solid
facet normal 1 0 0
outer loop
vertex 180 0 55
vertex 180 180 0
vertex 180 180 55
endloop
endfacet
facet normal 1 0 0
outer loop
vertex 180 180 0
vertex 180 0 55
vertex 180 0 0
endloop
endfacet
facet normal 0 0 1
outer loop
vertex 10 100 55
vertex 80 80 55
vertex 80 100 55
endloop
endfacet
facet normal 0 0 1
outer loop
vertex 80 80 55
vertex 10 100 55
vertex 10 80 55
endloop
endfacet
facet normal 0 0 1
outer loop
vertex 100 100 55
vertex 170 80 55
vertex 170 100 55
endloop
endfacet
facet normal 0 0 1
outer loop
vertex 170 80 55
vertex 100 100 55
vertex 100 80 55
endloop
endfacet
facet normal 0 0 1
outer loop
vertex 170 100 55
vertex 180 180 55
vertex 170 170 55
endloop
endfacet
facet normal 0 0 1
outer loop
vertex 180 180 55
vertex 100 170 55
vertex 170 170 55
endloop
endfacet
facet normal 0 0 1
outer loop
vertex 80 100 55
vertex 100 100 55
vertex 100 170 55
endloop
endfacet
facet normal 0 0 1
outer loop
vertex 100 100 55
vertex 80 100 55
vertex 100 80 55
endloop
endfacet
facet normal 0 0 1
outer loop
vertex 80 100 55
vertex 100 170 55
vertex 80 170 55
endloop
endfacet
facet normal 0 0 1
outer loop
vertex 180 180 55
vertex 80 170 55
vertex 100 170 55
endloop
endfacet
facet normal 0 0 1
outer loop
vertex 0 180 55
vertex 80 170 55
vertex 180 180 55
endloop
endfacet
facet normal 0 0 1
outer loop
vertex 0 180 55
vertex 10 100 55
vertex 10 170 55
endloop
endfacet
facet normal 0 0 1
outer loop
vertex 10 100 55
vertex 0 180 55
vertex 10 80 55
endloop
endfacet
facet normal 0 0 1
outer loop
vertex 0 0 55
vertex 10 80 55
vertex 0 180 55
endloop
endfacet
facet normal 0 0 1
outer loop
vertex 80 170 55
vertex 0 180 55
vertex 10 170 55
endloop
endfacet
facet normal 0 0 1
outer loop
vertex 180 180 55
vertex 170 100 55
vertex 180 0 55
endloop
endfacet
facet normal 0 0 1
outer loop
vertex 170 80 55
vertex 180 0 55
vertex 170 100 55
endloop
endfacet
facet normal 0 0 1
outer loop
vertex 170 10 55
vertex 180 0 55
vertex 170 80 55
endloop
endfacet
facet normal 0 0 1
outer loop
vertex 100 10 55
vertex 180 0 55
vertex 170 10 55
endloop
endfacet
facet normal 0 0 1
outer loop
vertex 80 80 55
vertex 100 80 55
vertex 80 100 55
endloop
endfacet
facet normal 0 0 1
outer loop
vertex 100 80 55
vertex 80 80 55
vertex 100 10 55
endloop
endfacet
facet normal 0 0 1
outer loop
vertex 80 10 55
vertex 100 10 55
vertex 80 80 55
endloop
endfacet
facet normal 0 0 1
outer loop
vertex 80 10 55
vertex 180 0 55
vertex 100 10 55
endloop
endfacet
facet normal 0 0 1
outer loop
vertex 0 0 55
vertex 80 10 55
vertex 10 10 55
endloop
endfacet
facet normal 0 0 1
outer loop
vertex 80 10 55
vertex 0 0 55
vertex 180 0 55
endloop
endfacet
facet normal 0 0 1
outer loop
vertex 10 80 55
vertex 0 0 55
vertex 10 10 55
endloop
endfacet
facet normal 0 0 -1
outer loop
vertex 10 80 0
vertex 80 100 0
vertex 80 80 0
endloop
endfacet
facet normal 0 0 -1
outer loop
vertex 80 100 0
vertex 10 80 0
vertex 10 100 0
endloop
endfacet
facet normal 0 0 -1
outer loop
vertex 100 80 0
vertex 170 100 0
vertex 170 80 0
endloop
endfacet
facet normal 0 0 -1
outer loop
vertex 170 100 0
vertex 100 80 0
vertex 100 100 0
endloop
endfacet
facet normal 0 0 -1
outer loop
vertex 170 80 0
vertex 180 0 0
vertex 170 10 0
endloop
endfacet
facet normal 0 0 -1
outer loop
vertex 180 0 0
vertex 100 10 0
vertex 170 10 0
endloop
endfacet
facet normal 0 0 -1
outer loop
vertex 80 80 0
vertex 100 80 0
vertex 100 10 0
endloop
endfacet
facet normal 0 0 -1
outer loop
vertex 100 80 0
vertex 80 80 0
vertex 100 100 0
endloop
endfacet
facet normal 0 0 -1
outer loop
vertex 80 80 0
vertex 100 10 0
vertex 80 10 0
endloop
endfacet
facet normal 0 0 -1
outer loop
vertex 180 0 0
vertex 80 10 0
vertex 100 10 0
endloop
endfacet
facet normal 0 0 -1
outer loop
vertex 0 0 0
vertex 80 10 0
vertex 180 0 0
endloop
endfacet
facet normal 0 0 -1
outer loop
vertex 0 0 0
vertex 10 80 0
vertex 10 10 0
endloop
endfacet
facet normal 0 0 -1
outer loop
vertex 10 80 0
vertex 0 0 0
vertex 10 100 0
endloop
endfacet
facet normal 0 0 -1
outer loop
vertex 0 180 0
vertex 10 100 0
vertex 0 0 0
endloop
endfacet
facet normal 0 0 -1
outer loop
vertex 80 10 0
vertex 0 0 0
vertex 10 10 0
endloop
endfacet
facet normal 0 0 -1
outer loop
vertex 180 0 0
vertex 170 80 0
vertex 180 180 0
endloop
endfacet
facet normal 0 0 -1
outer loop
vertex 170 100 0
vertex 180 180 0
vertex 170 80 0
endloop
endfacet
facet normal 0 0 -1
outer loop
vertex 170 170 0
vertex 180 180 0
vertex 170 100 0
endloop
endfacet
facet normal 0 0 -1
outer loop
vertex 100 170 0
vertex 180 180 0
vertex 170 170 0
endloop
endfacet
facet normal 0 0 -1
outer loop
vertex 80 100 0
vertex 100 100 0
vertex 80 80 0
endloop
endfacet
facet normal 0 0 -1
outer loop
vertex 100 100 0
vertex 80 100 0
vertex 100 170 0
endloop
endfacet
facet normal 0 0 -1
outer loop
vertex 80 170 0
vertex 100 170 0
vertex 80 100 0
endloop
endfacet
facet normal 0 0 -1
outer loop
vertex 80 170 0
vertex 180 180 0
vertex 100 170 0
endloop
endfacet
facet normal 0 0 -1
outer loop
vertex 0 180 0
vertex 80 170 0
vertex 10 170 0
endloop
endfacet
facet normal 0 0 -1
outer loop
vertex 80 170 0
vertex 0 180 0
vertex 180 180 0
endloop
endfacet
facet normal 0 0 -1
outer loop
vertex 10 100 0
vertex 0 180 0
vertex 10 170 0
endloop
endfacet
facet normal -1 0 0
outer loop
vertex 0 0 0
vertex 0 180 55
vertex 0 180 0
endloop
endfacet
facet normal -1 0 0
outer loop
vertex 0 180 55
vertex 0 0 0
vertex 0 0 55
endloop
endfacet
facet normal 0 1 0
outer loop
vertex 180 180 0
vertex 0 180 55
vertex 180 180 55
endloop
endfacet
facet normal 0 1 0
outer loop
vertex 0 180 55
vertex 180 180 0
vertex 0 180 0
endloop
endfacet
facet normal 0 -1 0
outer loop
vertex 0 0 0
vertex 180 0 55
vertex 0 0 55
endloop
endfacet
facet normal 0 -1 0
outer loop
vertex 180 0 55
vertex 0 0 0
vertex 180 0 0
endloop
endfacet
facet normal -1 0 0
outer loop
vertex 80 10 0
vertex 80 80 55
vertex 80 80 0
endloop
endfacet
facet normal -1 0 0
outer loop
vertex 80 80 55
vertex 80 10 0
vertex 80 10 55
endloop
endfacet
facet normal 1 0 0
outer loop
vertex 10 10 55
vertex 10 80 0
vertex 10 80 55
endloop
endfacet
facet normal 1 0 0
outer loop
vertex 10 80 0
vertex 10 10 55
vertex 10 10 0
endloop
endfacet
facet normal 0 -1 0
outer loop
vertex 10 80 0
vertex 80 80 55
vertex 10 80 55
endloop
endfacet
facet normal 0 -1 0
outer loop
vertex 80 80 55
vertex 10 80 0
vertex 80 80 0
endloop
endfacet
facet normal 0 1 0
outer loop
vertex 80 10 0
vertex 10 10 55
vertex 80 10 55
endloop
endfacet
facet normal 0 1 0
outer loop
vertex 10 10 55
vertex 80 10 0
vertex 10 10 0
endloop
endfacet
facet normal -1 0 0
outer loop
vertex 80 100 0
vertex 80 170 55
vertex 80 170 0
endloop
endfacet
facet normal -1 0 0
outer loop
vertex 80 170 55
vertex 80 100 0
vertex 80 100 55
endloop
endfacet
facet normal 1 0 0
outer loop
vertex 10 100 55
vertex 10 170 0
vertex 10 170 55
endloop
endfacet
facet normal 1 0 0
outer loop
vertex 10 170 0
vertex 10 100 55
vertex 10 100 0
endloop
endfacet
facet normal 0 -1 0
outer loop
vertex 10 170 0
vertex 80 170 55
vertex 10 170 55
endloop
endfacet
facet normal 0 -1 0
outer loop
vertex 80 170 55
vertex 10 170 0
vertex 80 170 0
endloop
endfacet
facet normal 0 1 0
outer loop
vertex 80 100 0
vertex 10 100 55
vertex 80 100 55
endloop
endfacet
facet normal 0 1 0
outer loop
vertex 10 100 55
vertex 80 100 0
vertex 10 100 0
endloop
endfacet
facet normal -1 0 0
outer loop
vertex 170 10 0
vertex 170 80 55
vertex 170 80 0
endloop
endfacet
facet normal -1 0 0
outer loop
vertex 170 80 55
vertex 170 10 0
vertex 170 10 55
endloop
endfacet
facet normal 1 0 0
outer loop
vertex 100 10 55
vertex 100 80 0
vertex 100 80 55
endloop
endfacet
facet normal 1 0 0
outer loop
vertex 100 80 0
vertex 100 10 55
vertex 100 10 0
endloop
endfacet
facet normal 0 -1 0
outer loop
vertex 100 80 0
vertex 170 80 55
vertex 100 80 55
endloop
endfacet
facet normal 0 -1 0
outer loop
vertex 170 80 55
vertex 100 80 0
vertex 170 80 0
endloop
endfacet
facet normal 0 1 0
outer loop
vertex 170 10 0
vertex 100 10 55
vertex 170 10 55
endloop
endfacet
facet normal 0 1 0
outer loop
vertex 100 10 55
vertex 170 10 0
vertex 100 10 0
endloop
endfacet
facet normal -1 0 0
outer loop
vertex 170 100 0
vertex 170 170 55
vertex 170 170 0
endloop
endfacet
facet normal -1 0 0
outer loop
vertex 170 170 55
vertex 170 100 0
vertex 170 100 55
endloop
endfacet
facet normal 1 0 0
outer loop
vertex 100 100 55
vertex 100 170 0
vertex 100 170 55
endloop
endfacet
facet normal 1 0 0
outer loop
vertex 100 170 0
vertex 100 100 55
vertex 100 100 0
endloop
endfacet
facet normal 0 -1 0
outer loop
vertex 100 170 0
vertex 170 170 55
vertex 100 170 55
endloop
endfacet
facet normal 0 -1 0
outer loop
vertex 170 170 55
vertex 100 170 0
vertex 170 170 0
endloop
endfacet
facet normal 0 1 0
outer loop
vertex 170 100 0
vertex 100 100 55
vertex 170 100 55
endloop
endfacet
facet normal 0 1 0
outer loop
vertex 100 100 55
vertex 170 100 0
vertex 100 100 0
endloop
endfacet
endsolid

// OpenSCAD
total_width = 180;
total_depth = 180;
total_height = 55;
border = 10;

difference()
{
    cube([total_width, total_depth, total_height]);
    translate([border, border, 0])
    {
        cube([(total_width / 2) - border - border, 
              (total_depth / 2) - border - border,
              total_height]);
    }
    translate([border, border + (total_width / 2), 0])
    {
        cube([(total_width / 2) - border - border, 
              (total_depth / 2) - border - border,
              total_height]);
    }
    translate([border + (total_width / 2),
               border, 0])
    {
        cube([(total_width / 2) - border - border, 
              (total_depth / 2) - border - border,
              total_height]);
    }
    translate([border + (total_width / 2),
               border + (total_depth / 2), 0])
    {
        cube([(total_width / 2) - border - border, 
              (total_depth / 2) - border - border,
              total_height]);
    }
}
